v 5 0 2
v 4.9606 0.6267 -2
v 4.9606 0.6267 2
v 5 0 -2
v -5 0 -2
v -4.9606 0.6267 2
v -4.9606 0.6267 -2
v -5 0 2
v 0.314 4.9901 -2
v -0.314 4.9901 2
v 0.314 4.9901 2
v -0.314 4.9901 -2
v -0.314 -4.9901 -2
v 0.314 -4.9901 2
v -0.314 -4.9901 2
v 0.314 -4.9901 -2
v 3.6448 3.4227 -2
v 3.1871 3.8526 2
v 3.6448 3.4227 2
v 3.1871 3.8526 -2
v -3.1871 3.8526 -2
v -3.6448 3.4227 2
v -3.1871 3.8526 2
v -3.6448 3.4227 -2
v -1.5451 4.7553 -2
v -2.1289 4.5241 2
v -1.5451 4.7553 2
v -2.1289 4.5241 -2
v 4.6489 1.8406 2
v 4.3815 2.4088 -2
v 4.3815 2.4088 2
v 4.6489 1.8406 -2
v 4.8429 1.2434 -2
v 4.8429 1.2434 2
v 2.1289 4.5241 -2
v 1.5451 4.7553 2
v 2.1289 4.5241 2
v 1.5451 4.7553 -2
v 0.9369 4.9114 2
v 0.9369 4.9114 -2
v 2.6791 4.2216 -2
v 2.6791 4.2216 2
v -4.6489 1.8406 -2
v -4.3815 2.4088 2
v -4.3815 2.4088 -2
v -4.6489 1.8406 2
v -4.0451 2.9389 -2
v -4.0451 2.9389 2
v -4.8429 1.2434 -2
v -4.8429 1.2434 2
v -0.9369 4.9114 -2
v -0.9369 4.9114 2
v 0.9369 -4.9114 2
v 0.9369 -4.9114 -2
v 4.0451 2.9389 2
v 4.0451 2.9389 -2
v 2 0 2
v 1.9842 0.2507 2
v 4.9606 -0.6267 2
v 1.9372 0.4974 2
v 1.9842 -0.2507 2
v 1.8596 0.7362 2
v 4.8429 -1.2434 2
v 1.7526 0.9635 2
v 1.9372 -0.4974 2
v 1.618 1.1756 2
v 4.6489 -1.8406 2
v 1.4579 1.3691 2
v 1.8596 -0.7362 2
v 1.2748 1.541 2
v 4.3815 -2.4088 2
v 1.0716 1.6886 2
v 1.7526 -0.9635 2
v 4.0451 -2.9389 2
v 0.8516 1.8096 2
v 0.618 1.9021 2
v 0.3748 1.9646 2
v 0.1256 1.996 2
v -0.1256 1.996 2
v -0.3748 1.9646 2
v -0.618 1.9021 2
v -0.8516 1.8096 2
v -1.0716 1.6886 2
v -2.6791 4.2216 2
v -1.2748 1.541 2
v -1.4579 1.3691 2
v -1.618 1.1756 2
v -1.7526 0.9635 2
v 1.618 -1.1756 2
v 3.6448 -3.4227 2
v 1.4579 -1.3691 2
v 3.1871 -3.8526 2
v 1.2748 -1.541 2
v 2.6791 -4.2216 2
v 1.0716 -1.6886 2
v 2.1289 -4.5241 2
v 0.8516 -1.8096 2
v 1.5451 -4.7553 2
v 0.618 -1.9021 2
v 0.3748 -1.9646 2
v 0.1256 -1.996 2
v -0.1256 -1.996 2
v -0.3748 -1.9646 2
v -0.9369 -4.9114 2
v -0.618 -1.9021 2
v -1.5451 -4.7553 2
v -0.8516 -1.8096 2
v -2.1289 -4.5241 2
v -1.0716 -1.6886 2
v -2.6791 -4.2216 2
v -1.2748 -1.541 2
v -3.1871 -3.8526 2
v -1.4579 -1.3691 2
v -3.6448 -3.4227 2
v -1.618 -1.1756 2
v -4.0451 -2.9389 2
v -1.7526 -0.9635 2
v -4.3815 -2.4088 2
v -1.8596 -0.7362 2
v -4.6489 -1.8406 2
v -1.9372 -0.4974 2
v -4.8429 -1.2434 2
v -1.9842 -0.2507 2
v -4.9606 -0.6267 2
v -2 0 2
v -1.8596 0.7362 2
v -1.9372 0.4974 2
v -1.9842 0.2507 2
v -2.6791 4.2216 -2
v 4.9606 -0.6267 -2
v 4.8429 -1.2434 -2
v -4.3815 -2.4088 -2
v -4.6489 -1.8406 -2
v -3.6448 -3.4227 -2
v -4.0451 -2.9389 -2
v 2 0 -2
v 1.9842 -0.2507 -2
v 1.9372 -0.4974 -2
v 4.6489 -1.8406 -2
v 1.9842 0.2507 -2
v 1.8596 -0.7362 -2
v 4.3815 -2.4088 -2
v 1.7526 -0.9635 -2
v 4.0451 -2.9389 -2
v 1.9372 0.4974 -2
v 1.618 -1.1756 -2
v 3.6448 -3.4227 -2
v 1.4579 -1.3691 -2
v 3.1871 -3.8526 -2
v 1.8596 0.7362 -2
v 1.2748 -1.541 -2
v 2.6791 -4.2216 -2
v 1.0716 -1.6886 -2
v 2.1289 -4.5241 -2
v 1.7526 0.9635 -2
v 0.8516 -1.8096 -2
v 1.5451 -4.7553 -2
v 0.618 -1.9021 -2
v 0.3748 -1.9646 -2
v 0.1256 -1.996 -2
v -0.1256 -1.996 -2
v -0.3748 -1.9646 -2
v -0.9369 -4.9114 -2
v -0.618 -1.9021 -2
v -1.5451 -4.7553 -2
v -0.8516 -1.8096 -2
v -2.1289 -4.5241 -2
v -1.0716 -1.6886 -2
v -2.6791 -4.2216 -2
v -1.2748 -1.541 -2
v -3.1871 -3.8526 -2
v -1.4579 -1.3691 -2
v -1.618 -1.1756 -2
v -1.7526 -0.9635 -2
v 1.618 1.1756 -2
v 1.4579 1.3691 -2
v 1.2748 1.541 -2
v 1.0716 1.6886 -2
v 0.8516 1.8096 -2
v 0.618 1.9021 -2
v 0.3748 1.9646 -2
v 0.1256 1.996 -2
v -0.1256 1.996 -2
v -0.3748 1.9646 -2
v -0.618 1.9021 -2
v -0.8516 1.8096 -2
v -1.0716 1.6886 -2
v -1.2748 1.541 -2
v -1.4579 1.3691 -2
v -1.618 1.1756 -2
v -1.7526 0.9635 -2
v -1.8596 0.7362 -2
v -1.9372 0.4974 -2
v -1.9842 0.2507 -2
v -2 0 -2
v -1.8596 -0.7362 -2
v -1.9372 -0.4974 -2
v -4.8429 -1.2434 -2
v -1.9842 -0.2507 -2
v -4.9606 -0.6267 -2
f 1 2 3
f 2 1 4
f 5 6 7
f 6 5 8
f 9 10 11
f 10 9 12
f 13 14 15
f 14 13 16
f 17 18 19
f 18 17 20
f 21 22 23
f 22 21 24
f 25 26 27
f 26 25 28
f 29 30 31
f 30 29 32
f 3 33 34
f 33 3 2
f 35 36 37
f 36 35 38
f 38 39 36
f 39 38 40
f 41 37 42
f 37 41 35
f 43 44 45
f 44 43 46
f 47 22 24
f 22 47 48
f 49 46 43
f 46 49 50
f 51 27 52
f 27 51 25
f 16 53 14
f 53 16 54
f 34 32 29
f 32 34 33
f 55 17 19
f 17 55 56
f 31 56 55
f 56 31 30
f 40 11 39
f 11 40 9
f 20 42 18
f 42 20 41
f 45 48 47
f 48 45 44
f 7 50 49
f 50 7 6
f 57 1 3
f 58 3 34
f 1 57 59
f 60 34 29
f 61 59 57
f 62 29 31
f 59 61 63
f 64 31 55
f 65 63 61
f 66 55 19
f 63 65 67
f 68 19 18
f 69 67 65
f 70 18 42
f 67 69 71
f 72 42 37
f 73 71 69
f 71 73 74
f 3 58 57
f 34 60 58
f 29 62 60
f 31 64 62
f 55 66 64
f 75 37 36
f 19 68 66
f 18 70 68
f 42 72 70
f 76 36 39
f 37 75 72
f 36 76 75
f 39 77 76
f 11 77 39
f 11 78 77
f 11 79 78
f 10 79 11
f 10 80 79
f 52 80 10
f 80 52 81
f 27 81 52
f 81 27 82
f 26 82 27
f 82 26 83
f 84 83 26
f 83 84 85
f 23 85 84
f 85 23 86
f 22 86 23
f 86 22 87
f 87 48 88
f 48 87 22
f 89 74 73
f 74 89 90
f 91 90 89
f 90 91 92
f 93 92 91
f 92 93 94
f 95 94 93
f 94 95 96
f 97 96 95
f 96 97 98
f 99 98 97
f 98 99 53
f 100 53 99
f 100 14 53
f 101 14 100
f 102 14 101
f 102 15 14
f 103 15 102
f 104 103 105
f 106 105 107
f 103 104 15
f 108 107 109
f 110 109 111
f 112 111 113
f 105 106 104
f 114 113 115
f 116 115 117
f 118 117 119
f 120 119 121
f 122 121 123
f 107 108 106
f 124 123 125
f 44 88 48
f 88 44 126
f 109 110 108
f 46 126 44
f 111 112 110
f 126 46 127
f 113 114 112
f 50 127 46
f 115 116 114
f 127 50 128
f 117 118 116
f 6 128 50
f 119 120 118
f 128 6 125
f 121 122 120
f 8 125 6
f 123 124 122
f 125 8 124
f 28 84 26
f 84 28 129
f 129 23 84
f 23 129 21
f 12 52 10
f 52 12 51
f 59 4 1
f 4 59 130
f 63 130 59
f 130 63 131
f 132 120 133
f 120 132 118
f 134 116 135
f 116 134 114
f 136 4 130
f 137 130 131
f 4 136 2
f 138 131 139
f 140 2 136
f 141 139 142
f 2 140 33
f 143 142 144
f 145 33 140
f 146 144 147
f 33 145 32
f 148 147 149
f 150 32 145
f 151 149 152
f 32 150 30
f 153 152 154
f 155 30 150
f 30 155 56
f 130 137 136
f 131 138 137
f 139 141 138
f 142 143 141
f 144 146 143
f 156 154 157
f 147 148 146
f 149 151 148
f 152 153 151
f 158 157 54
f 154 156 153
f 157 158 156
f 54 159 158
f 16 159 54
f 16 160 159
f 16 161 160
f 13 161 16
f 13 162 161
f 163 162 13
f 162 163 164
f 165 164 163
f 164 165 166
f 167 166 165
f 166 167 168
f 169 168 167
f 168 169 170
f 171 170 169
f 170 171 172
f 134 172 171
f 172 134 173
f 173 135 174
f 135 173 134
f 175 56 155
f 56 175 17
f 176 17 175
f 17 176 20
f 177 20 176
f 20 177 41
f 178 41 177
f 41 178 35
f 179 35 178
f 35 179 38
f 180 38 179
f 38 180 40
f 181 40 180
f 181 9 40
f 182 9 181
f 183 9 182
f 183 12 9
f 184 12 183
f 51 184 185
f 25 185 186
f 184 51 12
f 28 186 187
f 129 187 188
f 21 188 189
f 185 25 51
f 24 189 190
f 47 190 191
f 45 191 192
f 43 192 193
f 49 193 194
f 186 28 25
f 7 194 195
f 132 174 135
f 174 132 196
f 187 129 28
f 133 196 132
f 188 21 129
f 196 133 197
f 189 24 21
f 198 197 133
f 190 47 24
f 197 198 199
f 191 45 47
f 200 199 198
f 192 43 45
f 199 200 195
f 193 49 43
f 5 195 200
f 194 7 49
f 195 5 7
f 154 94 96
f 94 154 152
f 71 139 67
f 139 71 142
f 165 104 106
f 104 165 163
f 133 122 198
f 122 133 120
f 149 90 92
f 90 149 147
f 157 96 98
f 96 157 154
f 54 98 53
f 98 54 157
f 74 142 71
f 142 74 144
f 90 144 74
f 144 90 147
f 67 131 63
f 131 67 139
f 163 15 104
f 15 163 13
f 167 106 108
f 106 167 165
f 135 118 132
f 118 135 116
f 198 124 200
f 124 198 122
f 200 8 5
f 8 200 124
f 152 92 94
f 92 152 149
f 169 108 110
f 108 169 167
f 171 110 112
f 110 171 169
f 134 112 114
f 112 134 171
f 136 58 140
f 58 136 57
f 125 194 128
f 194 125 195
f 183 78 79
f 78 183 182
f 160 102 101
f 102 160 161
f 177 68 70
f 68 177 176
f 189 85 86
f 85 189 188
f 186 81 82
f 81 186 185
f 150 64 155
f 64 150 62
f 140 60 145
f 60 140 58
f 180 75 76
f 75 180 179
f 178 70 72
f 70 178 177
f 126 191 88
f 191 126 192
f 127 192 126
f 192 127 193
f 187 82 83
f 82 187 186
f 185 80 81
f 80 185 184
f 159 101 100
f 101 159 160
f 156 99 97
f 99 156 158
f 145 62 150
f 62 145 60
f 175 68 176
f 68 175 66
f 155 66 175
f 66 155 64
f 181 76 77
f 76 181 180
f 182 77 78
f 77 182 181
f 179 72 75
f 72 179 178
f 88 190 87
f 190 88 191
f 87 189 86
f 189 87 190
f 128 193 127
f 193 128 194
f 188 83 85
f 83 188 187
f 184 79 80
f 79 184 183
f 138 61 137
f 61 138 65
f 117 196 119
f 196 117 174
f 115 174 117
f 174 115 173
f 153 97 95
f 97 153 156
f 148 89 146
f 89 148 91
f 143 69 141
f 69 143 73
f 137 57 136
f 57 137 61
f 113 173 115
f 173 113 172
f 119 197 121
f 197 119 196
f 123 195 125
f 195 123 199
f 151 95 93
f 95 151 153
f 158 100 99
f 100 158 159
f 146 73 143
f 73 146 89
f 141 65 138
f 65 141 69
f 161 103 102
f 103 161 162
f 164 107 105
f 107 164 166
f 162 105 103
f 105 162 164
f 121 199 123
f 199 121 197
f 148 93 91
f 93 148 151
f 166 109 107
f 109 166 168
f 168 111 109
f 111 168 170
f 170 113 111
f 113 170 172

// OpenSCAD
$fn = 50;


difference() {
	union() {
		translate(v = [0, 0, -2.0000000000]) {
			cylinder(h = 4, r = 5.0000000000);
		}
	}
	union() {
		translate(v = [0, 0, -100.0000000000]) {
			cylinder(h = 200, r = 2);
		}
	}
}
